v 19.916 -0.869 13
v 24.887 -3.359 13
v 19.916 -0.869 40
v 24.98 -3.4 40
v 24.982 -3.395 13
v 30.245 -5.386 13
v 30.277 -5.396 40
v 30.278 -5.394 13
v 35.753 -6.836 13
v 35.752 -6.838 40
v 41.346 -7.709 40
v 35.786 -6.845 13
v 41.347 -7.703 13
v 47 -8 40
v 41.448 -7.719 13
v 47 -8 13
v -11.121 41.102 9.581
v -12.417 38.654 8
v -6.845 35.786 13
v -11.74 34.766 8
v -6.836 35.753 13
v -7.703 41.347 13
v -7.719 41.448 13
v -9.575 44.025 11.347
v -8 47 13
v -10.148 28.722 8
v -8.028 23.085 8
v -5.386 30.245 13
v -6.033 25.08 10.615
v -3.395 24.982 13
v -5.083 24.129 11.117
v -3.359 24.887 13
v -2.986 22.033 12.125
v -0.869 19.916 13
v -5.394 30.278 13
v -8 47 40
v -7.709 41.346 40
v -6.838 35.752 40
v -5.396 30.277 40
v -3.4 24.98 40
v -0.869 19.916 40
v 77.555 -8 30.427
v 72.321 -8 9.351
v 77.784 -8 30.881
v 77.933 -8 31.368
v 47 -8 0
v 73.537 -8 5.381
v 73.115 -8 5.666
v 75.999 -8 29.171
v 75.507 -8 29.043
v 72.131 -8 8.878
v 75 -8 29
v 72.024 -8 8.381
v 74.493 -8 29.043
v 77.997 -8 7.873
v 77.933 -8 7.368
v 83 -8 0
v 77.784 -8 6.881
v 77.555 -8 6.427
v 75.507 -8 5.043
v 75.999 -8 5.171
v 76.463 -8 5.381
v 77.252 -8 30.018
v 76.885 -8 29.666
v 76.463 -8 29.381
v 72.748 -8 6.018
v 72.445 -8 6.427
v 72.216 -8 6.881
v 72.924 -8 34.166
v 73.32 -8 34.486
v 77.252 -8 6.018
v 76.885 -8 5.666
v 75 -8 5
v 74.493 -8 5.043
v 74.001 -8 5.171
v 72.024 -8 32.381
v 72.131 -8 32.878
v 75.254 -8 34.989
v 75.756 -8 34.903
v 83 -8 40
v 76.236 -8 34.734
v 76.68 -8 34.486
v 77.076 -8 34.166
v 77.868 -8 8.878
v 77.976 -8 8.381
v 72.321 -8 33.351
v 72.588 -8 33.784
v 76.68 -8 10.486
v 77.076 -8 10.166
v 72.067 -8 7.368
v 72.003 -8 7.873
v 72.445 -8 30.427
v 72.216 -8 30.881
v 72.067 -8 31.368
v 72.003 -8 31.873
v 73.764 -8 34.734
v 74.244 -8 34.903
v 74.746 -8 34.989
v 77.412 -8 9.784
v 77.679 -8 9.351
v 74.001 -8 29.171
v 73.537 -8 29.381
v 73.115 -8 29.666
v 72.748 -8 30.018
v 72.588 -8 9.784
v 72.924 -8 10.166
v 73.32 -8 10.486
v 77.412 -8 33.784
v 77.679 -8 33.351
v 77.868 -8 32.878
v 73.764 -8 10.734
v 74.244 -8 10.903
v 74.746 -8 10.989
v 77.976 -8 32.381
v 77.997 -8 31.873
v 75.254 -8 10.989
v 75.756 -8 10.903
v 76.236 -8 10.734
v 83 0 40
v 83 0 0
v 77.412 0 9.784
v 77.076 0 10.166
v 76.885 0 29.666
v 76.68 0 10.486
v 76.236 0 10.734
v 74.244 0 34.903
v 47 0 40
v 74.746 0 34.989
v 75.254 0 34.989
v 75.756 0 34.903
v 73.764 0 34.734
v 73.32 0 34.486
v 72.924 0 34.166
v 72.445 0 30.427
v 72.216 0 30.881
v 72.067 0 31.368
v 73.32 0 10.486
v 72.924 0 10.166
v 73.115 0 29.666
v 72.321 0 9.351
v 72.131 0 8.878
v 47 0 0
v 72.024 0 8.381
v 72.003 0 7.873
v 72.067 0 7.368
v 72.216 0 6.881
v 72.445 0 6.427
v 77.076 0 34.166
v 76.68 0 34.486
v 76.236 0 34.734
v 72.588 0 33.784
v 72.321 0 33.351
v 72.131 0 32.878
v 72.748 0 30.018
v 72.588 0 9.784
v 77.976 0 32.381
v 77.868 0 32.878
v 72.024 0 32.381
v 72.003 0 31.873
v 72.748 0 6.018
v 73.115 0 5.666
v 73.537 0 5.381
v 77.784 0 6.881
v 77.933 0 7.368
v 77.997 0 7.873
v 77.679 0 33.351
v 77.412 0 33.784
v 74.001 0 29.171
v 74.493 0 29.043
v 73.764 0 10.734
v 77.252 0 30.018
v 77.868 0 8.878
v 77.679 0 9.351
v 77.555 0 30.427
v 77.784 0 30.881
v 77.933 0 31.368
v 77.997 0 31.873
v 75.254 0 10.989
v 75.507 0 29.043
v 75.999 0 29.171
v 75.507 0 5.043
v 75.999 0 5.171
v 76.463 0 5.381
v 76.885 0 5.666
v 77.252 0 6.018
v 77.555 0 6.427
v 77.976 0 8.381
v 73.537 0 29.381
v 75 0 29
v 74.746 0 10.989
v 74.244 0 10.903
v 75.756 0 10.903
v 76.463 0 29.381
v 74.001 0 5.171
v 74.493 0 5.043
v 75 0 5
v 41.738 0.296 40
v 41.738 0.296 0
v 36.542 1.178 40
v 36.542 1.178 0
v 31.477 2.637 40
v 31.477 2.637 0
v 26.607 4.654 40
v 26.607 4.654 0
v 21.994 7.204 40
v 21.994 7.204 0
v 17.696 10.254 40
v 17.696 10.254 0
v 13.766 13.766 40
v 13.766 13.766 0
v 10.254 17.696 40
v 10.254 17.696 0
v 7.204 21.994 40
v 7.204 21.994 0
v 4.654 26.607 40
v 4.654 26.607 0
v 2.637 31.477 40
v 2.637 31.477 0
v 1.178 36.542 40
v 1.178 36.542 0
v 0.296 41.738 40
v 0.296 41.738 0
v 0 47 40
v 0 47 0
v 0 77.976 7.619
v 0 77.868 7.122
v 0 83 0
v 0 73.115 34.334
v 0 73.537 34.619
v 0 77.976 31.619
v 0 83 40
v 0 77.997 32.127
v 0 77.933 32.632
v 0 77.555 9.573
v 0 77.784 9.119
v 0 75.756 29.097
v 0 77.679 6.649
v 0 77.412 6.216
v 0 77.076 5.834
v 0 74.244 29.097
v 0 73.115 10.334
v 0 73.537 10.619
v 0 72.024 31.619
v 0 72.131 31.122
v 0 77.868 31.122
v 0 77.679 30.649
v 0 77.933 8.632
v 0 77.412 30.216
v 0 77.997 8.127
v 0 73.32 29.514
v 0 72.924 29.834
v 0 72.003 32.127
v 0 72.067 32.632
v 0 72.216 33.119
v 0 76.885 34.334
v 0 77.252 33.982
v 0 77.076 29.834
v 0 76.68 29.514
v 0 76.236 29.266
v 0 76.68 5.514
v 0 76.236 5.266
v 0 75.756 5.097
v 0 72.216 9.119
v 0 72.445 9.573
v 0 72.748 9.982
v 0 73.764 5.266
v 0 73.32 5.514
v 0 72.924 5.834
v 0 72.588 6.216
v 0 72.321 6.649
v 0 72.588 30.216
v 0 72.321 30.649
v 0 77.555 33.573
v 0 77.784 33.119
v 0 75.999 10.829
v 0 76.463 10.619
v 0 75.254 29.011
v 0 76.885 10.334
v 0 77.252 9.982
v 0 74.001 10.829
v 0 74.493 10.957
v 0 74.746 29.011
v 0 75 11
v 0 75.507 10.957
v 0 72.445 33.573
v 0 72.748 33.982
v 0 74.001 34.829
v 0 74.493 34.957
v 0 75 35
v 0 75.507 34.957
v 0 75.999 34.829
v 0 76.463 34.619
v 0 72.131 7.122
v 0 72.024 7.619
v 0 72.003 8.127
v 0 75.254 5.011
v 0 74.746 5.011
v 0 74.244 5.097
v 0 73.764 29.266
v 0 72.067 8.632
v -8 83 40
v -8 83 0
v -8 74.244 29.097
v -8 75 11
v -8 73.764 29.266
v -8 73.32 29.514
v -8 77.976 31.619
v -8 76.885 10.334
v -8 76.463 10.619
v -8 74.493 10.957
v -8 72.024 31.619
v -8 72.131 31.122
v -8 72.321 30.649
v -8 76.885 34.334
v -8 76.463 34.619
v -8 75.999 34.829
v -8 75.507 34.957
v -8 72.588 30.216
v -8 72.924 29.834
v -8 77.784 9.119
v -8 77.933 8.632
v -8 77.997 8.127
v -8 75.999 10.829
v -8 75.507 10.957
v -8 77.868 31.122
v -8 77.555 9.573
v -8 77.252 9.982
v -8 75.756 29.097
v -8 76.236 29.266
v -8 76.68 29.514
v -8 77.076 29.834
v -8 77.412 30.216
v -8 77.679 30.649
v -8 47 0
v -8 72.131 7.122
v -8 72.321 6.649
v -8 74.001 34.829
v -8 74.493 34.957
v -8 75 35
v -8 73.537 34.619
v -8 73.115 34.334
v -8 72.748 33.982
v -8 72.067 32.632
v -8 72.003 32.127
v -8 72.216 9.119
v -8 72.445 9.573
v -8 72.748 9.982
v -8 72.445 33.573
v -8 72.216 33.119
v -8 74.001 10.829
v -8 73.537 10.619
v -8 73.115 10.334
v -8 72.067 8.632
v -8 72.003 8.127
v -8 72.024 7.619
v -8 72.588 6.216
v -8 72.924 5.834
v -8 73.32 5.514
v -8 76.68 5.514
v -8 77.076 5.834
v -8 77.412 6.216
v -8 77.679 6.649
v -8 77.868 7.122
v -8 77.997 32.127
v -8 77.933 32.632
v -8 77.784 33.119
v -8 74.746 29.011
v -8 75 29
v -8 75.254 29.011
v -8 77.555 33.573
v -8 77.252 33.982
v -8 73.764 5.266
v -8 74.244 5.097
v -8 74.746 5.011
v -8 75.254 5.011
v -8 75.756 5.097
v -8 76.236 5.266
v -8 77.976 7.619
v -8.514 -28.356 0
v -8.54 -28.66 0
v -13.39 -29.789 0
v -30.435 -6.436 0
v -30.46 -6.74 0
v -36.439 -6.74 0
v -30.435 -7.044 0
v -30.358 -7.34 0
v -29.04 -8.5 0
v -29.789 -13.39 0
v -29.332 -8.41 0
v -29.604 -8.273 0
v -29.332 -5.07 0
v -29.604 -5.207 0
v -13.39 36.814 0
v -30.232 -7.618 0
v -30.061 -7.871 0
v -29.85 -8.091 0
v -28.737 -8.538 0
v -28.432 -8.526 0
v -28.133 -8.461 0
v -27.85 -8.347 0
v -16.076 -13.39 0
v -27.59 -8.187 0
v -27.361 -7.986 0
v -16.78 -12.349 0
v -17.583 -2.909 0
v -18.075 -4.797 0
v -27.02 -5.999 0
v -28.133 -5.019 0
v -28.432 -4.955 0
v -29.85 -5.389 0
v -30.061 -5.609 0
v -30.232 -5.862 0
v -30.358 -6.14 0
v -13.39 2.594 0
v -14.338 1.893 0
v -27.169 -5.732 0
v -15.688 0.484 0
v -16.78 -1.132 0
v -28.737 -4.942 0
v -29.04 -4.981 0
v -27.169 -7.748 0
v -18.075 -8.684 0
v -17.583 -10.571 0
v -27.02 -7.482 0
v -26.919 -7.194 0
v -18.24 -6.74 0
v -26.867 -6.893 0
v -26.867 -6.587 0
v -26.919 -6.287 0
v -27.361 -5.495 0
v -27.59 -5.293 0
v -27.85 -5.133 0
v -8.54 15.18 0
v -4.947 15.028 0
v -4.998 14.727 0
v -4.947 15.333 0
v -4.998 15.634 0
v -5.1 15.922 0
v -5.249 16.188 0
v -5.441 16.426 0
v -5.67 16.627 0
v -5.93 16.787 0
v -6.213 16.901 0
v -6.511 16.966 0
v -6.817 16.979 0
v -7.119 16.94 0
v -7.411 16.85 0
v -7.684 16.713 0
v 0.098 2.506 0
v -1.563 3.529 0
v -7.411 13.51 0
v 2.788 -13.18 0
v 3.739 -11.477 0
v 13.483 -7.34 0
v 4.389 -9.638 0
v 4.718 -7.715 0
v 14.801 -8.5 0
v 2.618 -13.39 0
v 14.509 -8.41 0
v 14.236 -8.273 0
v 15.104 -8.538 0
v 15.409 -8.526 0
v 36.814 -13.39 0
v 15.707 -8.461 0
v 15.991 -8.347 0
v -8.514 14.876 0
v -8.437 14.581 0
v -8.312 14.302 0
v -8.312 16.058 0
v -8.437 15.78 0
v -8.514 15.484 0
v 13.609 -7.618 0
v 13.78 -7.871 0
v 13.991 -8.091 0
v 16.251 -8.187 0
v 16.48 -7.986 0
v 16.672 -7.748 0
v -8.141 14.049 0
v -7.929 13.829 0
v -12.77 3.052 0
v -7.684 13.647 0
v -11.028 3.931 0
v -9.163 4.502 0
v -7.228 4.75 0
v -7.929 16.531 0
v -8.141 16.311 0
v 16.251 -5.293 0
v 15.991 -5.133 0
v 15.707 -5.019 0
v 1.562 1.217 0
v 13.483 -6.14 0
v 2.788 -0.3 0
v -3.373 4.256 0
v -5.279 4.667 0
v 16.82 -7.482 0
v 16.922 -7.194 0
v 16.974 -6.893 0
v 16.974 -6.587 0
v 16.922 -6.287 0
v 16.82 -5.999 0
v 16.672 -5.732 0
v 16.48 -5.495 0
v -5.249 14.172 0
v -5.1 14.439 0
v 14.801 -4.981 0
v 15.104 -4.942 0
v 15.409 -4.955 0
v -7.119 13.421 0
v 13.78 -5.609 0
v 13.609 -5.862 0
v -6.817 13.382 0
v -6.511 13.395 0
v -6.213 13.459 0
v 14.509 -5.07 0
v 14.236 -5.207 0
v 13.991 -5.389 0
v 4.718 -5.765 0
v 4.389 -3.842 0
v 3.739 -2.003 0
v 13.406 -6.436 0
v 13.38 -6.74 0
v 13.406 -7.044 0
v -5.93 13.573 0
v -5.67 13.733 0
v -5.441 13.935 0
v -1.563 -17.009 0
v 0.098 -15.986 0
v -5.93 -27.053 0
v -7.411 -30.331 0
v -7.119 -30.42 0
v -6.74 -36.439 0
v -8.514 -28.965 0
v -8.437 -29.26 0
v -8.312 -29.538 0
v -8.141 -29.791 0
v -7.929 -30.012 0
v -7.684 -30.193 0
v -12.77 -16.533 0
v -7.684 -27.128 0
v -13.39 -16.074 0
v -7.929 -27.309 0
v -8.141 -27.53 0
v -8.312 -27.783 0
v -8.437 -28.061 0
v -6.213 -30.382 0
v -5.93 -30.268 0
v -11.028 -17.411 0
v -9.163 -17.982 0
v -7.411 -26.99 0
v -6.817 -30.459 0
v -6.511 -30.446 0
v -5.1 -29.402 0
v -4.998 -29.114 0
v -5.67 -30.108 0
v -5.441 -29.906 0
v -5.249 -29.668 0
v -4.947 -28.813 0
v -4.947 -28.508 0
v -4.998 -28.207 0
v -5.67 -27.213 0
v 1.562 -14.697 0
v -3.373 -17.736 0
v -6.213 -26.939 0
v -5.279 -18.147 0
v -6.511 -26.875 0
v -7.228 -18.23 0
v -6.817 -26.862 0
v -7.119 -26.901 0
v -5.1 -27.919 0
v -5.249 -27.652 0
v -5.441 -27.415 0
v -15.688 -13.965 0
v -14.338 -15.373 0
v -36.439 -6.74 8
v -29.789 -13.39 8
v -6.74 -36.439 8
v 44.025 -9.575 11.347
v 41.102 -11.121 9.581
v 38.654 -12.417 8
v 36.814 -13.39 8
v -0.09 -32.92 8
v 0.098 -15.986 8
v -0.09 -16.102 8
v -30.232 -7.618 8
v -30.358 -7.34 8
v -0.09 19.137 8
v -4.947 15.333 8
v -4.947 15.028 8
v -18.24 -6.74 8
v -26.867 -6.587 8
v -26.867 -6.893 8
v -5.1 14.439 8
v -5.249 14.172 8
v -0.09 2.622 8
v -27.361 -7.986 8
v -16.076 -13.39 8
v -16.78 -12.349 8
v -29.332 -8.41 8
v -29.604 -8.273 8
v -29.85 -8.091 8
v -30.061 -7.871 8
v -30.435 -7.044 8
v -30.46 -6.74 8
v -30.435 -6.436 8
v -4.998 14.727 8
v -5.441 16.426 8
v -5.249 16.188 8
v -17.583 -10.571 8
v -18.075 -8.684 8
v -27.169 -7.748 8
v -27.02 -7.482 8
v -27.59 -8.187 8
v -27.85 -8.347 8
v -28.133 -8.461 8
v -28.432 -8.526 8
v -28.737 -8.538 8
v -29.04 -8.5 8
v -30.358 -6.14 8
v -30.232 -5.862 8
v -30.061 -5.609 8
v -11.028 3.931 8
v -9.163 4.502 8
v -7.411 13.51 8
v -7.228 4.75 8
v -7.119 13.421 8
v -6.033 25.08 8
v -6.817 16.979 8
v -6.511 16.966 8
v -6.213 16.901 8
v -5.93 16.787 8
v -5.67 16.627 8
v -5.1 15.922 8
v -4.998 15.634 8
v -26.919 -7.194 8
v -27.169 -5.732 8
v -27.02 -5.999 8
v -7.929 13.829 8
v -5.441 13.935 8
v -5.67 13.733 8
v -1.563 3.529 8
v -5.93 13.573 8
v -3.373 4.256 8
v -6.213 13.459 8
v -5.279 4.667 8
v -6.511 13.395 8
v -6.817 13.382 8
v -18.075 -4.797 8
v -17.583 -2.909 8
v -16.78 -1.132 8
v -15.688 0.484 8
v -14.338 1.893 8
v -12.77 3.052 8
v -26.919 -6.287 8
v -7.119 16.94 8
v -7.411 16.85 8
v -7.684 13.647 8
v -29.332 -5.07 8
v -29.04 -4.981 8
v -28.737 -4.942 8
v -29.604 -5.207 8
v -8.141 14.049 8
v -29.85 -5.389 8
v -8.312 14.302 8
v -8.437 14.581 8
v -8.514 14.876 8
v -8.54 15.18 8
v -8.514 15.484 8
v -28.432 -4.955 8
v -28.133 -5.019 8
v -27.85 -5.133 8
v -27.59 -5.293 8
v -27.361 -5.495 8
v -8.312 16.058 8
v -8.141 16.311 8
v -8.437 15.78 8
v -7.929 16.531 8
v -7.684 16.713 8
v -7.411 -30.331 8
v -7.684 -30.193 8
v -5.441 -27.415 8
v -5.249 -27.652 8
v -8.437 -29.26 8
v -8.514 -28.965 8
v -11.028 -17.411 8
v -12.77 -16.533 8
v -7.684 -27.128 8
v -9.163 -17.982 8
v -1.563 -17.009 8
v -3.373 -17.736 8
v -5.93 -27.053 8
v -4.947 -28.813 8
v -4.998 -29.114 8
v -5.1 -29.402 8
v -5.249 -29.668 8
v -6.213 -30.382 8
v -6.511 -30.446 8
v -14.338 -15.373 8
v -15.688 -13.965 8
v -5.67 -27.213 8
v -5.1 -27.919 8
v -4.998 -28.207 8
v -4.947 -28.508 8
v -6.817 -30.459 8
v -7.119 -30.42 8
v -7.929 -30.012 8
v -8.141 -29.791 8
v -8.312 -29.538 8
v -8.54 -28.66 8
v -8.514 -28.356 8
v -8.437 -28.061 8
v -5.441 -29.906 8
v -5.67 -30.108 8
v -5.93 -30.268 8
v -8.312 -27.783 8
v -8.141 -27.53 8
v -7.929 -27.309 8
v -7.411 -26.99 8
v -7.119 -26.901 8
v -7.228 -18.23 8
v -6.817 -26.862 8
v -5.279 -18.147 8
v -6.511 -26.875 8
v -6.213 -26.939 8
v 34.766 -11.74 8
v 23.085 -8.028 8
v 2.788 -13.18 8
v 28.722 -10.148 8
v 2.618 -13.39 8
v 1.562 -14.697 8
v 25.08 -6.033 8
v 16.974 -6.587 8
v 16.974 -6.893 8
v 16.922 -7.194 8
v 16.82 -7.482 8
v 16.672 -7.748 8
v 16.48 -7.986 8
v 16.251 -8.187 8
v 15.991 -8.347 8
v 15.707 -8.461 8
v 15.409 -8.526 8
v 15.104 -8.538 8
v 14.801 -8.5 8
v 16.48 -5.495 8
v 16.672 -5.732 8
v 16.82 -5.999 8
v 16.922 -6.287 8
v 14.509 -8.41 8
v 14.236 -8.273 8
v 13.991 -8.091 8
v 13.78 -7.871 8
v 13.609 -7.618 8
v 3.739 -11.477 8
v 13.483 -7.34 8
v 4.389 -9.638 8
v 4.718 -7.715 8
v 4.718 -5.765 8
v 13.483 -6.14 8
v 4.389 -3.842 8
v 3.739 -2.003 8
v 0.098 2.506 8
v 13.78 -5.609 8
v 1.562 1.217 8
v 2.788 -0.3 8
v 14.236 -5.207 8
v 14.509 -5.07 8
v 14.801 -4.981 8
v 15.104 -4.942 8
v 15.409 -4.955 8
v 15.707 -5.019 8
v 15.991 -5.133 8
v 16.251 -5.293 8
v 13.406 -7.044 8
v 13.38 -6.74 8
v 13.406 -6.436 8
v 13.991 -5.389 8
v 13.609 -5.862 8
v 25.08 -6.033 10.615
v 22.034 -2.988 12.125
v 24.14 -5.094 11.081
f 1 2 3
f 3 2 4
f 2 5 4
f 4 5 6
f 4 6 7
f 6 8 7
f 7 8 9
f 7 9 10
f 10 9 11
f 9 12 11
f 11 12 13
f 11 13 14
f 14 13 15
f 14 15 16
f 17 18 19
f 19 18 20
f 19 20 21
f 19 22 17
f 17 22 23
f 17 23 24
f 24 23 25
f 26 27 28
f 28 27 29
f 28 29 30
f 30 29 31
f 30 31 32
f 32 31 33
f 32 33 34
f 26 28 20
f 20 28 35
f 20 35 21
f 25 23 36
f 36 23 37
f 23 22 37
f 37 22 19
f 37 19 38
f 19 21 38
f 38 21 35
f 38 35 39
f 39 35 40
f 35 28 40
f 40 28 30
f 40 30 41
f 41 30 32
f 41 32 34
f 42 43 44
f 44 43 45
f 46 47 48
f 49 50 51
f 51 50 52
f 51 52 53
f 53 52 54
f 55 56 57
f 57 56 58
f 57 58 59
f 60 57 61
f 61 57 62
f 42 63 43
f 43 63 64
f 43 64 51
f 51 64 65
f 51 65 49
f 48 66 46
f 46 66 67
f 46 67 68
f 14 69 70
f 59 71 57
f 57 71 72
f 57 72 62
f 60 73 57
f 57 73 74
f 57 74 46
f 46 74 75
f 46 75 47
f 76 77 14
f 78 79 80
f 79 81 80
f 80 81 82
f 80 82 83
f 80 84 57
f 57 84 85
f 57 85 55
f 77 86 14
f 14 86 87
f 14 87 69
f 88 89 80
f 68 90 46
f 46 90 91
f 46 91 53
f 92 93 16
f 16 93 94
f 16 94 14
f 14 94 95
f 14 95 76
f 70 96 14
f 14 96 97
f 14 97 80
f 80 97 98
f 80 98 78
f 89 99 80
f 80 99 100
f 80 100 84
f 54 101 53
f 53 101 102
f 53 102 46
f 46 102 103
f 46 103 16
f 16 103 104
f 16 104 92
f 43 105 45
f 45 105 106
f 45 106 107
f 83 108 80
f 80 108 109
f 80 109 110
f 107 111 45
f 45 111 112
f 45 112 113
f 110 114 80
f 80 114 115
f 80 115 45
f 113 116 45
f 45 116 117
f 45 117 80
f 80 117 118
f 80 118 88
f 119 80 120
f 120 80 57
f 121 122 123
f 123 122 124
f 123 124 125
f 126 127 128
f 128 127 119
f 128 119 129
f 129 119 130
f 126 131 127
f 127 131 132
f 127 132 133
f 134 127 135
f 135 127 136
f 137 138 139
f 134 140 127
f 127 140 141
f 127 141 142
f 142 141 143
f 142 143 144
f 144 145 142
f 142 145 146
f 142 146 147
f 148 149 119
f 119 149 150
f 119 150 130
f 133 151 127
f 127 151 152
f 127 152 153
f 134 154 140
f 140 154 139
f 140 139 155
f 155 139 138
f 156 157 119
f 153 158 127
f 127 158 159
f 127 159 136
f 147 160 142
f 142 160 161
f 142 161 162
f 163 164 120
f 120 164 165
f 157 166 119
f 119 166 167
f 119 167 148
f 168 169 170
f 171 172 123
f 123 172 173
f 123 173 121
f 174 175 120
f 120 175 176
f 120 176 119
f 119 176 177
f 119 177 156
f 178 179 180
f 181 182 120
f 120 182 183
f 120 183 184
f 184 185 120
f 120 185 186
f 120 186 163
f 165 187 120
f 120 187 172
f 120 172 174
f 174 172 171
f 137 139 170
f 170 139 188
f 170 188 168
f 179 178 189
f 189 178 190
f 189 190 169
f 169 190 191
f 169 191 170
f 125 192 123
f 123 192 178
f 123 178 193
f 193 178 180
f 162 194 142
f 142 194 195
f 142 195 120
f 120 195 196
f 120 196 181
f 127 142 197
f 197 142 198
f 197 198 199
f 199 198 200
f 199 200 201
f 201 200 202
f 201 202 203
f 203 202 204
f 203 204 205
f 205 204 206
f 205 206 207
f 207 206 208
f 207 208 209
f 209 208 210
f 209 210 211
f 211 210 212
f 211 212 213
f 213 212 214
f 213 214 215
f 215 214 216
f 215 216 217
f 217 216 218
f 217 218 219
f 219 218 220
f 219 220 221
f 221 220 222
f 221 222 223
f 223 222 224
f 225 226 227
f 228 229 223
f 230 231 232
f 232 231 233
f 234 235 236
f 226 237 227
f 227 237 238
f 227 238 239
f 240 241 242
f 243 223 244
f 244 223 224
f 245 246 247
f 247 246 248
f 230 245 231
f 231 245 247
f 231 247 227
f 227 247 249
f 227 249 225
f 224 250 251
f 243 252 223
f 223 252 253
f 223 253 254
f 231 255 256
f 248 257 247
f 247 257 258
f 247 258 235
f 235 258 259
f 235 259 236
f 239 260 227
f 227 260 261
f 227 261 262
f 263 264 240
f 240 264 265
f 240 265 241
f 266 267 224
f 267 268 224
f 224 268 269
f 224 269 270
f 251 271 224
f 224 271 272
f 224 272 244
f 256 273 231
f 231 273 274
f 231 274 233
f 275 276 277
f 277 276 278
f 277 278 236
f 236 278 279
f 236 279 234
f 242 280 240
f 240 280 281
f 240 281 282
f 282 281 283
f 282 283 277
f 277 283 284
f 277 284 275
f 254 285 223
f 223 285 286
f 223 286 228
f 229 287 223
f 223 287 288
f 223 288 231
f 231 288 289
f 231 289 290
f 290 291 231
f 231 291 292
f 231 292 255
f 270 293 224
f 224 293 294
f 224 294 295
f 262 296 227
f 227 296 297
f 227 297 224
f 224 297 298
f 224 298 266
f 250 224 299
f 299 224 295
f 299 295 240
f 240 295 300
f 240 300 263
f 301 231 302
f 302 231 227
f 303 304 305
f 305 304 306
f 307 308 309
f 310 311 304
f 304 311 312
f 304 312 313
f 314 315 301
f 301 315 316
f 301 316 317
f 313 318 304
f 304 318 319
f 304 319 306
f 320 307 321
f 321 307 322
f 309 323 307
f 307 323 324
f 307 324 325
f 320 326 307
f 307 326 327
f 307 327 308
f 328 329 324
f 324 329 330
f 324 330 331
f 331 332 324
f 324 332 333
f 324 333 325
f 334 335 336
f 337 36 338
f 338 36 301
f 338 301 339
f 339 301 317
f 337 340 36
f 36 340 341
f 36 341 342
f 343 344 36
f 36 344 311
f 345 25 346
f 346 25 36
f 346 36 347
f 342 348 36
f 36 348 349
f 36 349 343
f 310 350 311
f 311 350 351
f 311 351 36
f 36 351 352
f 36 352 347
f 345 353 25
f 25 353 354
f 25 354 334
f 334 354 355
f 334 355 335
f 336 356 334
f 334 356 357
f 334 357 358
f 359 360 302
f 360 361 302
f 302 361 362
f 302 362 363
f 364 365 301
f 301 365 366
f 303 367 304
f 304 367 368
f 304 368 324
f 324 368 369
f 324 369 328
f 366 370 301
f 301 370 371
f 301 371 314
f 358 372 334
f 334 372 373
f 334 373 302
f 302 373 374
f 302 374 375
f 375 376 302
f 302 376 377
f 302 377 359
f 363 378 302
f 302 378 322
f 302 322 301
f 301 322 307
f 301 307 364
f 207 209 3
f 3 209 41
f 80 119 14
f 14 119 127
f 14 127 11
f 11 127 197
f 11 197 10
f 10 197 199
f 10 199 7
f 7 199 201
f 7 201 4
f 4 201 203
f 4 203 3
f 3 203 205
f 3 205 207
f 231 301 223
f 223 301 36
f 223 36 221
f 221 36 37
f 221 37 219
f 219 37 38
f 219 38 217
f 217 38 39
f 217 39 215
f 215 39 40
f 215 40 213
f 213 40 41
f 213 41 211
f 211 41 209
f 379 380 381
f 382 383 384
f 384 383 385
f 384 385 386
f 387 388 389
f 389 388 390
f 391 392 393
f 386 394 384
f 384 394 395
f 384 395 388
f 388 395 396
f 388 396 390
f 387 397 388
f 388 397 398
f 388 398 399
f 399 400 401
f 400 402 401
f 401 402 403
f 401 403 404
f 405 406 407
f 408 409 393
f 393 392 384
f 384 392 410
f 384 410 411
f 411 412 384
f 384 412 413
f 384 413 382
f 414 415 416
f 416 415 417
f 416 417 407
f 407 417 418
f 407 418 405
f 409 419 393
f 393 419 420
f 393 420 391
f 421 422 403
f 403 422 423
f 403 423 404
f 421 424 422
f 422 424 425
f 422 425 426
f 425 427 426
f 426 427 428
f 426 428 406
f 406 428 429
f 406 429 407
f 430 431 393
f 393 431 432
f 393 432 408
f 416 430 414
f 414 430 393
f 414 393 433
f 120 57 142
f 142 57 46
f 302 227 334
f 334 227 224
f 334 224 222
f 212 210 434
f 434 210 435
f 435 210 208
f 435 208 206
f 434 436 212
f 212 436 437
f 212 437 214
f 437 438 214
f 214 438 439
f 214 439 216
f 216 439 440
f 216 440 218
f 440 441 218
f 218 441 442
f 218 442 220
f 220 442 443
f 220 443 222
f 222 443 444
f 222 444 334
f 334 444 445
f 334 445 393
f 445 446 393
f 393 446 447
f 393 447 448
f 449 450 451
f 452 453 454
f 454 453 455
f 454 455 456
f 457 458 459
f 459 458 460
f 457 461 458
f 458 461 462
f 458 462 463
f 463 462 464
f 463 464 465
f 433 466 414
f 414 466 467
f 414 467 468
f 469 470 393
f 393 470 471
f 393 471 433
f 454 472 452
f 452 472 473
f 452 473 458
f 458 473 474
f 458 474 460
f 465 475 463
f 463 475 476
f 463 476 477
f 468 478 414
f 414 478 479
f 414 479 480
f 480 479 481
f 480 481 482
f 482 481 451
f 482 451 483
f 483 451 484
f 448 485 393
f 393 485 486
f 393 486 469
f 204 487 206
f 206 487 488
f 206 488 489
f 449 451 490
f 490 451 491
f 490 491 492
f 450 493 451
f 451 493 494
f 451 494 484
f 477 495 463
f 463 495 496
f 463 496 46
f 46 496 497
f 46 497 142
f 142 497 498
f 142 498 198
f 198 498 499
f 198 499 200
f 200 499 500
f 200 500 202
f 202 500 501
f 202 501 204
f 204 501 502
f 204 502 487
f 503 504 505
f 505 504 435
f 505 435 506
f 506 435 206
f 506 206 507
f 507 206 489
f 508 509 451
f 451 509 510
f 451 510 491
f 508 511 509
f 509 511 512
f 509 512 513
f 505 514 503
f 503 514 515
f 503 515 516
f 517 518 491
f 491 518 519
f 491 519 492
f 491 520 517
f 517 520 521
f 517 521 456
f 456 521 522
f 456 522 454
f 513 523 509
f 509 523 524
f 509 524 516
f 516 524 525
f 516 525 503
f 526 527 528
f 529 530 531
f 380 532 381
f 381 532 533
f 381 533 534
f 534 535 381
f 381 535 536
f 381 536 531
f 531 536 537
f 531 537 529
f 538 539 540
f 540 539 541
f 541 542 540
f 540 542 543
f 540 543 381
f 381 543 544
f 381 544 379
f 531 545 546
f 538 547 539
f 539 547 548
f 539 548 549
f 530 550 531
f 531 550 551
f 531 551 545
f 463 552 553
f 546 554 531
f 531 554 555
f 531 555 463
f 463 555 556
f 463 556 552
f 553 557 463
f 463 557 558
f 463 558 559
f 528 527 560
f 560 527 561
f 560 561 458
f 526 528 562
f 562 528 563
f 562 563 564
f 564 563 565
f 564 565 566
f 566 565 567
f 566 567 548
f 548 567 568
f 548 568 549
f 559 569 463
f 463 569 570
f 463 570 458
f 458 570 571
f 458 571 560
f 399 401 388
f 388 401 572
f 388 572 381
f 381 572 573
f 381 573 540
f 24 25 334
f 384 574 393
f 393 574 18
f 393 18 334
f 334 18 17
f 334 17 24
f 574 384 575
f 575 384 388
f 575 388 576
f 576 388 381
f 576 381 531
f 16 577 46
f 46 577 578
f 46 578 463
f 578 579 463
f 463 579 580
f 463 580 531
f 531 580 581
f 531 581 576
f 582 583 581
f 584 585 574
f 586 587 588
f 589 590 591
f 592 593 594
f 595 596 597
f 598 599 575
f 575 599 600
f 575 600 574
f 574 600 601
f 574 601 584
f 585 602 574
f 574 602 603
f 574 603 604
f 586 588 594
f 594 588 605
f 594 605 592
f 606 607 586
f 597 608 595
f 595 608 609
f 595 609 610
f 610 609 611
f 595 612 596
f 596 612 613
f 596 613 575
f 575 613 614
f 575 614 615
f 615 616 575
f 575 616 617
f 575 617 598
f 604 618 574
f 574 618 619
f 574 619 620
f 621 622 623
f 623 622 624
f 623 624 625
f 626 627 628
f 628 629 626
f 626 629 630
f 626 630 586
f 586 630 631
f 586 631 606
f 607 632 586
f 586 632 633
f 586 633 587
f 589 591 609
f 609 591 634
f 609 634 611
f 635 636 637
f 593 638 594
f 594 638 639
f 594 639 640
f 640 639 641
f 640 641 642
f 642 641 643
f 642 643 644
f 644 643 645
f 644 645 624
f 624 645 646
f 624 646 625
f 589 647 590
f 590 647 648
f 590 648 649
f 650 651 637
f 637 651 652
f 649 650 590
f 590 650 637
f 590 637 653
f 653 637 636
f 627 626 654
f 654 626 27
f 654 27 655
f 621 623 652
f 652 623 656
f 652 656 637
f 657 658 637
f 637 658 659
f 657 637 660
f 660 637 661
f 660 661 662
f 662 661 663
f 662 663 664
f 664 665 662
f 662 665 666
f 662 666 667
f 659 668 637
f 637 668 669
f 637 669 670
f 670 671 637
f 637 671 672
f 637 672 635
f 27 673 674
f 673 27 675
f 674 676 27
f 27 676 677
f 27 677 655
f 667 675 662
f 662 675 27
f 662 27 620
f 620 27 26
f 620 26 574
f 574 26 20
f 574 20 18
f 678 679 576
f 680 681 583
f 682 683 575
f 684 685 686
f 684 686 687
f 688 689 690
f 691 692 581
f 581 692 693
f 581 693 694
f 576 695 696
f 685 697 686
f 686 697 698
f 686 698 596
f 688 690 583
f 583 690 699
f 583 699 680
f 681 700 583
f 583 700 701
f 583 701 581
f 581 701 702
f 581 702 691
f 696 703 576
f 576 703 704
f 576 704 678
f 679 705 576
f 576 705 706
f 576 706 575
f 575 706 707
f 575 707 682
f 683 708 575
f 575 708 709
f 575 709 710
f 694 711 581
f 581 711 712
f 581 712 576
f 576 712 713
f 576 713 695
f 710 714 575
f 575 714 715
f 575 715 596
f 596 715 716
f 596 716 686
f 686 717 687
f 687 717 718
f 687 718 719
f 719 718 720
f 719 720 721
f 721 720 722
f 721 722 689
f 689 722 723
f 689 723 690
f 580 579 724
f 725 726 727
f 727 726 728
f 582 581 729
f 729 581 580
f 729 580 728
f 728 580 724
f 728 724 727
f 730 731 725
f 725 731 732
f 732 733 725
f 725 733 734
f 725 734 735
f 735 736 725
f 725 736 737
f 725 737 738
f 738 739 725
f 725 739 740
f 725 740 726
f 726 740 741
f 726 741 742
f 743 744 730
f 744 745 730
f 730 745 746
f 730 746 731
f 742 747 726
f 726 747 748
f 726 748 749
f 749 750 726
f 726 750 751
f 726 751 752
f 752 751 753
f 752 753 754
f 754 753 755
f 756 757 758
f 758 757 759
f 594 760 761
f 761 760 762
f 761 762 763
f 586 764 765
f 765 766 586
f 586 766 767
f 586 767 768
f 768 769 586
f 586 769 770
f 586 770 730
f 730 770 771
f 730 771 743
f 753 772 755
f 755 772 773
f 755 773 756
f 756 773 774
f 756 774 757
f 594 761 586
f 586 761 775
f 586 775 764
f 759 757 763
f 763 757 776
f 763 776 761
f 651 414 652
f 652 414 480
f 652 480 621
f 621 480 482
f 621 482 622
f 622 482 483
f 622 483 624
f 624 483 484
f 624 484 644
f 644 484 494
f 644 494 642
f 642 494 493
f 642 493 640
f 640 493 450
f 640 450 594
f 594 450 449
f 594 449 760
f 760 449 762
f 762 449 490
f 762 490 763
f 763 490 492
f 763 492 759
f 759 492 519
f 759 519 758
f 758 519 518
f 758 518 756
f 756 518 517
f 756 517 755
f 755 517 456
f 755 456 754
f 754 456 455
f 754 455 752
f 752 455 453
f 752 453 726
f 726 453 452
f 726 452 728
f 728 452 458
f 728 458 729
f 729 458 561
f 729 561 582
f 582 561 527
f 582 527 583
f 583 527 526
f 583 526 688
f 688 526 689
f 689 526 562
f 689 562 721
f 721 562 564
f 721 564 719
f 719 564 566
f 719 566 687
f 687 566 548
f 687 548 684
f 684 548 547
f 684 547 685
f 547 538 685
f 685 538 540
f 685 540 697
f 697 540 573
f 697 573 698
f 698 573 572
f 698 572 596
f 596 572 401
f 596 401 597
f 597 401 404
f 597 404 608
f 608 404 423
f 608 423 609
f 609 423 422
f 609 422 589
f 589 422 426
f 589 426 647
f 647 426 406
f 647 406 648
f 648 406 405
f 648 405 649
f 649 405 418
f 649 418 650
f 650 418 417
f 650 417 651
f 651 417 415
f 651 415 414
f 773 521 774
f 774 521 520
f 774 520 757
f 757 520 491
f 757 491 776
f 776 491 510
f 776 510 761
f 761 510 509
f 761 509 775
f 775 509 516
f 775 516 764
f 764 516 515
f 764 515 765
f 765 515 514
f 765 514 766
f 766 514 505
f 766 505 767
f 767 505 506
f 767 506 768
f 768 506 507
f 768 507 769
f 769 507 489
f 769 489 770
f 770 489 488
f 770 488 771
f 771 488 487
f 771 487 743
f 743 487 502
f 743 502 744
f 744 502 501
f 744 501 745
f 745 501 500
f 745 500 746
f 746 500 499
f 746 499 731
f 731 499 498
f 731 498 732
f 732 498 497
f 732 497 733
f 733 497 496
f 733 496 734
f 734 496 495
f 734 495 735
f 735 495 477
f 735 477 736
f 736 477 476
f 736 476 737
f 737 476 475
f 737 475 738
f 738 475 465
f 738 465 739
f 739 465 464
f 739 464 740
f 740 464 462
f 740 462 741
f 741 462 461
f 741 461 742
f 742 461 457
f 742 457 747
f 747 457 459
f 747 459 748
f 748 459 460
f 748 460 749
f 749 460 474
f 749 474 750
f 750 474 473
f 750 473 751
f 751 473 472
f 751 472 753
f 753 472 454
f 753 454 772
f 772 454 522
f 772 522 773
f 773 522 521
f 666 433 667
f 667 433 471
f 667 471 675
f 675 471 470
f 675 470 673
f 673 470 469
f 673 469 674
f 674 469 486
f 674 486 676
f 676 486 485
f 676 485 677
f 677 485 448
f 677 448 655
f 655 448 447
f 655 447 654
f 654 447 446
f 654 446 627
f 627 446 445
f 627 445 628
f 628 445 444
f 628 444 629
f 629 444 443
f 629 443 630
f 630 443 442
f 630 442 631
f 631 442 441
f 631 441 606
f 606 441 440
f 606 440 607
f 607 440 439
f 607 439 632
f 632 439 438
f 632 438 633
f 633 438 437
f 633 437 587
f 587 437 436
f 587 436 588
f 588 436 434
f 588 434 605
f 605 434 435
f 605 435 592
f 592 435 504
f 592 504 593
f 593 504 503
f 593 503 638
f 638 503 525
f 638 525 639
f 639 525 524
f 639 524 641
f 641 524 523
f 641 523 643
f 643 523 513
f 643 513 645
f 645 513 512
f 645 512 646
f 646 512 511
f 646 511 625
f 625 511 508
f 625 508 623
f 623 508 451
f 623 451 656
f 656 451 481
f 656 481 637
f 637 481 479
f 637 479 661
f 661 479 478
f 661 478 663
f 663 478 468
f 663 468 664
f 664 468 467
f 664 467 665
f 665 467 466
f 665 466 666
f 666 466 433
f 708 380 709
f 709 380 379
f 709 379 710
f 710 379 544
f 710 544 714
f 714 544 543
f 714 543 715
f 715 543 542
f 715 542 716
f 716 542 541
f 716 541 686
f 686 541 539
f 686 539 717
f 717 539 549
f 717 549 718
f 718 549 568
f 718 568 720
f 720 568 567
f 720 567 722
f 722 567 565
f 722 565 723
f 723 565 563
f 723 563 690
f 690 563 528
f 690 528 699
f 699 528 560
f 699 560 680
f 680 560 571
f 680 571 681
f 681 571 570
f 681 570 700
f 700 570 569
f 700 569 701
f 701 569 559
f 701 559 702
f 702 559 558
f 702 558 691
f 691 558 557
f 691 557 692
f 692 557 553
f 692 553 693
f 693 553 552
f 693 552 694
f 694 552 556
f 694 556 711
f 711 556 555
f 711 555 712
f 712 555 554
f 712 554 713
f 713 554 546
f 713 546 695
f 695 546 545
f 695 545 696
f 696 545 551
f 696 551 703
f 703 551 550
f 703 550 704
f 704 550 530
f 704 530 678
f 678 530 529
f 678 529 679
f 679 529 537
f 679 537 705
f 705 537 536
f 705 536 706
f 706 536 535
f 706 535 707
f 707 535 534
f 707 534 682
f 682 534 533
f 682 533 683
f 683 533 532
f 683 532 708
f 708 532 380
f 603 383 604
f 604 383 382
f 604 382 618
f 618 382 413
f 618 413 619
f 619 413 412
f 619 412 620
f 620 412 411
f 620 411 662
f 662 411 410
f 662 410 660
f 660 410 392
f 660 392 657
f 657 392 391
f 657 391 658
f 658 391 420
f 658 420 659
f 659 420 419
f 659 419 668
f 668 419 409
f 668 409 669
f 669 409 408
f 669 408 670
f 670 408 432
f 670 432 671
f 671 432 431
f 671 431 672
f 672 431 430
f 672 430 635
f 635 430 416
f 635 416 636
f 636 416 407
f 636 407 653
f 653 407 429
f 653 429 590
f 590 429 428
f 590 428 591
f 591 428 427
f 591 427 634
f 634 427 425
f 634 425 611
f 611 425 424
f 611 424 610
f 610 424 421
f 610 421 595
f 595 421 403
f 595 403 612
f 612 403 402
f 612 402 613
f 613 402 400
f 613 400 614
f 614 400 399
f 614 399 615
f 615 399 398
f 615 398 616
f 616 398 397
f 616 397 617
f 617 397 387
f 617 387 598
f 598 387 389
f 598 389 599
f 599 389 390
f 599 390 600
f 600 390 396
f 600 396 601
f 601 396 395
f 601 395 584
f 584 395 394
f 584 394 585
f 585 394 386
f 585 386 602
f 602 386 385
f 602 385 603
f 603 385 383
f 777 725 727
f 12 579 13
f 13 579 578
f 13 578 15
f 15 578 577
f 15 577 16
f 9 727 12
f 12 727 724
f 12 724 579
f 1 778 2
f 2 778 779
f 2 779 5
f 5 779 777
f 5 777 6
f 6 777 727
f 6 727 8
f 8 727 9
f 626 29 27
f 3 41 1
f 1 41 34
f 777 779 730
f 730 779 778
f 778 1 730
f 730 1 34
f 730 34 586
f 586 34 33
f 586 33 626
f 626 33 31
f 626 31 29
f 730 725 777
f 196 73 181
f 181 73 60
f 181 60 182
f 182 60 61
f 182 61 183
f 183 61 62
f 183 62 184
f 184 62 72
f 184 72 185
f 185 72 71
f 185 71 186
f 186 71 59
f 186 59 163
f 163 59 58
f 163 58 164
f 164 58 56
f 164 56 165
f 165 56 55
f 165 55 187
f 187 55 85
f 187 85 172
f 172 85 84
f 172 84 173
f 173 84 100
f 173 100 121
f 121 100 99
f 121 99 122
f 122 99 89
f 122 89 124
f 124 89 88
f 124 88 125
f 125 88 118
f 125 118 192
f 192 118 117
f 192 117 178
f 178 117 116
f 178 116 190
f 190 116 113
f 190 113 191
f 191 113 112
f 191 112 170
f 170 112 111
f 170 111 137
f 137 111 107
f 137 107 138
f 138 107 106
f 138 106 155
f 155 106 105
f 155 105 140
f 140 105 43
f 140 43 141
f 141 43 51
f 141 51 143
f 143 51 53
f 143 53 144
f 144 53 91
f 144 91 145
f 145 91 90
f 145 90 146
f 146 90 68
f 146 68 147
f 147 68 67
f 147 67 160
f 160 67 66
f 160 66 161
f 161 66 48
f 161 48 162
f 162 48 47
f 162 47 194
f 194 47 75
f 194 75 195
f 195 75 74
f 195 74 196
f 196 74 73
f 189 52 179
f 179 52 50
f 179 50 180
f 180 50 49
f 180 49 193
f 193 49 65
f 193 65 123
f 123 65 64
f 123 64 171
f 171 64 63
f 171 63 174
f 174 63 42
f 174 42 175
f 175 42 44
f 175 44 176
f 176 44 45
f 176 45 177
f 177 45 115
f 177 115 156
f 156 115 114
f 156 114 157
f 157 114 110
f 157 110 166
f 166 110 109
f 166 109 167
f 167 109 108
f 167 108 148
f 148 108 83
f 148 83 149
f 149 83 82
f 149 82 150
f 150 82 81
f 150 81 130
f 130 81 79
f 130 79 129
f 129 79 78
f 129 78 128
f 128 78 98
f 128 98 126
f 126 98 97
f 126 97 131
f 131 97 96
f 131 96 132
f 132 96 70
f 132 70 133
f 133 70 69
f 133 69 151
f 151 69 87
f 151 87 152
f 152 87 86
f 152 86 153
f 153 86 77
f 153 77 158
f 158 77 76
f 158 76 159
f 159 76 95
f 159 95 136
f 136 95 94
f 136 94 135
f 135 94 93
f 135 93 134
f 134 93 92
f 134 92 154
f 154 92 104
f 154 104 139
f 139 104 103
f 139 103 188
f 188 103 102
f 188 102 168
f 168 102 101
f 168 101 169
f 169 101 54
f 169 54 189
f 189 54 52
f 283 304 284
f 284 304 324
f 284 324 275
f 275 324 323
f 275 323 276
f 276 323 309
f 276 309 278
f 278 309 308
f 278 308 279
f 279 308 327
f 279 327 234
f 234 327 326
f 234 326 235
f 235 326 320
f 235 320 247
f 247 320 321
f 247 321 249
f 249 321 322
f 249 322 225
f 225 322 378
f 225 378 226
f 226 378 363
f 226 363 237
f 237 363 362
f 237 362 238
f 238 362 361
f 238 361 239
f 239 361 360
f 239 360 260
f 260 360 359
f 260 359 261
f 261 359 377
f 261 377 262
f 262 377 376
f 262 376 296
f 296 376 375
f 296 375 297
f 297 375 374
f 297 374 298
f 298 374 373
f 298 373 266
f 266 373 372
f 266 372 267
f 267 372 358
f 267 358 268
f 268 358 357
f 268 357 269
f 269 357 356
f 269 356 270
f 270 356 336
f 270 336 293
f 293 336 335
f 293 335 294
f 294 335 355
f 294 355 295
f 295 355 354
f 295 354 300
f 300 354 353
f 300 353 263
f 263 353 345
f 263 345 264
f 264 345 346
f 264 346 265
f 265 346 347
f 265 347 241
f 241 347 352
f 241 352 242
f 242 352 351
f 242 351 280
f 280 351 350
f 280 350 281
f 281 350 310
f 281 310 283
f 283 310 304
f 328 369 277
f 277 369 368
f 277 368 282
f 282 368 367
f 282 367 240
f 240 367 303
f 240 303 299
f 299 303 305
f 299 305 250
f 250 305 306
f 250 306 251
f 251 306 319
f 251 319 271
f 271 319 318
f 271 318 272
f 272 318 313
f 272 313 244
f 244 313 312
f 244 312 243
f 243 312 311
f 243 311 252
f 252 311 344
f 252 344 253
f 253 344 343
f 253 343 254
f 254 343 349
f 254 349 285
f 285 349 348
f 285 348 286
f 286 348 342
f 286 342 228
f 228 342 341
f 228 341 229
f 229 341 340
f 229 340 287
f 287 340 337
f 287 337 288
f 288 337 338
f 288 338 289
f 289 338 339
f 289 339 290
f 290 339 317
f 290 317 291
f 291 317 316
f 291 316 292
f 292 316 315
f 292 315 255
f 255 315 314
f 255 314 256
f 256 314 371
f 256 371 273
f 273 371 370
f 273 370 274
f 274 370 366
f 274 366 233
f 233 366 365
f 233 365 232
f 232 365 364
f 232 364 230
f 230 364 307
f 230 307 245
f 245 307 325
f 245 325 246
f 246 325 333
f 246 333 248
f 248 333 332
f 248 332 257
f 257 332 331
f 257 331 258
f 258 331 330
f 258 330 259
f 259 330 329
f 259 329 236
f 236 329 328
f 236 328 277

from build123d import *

# Parameters (mm, degrees)
EXTRUDE_1_DEPTH     = 40
SKETCH_4_R          = 11.5
SKETCH_4_R_2        = 1.8
EXTRUDE_3_DEPTH     = 8
CHAMFER_1_SIZE      = 5
CUT_EXTRUDE_4_DEPTH = 32
SKETCH_6_R          = 3
CUT_EXTRUDE_5_DEPTH = 32
SKETCH_7_R          = 3
CUT_EXTRUDE_6_DEPTH = 32


with BuildPart() as part:
    # 草图1 → 凸台-拉伸1 (new body)
    with BuildSketch(Plane.XY):
        with BuildLine():
            Line((0, 47), (0, 83))
            Line((0, 83), (-8, 83))
            Line((-8, 83), (-8, 47))
            ThreePointArc((-8, 47), (8.109127035, 8.109127035), (47, -8))
            Line((47, -8), (83, -8))
            Line((83, -8), (83, 0))
            Line((83, 0), (47, 0))
            ThreePointArc((47, 0), (13.765981284, 13.765981284), (0, 47))
        make_face()
    extrude(amount=EXTRUDE_1_DEPTH)

    # 草图4 → 凸台-拉伸3 (add)
    with BuildSketch(Plane(origin=(0, 0, 0), x_dir=(-1, 0, 0), z_dir=(0, 0, -1))):
        with BuildLine():
            Line((6.74011537, -36.43860018), (36.43860018, -6.74011537))
            Line((36.43860018, -6.74011537), (8, 47))
            ThreePointArc((8, 47), (-8.109127035, 8.109127035), (-47, -8))
            Line((-47, -8), (6.74011537, -36.43860018))
        make_face()
        with Locations((6.74011537, -6.74011537)):
            Circle(SKETCH_4_R, mode=Mode.SUBTRACT)
        with Locations((-15.180194847, -6.74011537)):
            Circle(SKETCH_4_R_2, mode=Mode.SUBTRACT)
        with Locations((6.74011537, 15.180194847)):
            Circle(SKETCH_4_R_2, mode=Mode.SUBTRACT)
        with Locations((6.74011537, -28.660425587)):
            Circle(SKETCH_4_R_2, mode=Mode.SUBTRACT)
        with Locations((28.660425587, -6.74011537)):
            Circle(SKETCH_4_R_2, mode=Mode.SUBTRACT)
    extrude(amount=-EXTRUDE_3_DEPTH)

    # 倒角1
    # the kernel refuses this chamfer: 5 mm, written as the material it adds along each edge
    with BuildSketch(Plane(origin=(47, 47, 8), x_dir=(-0.9727737558517583, 0.23175681203810172, 0), z_dir=(0.23175681203810172, 0.9727737558517583, 0))) as chamfer_1_piece_1_section:
        Polygon((55, CHAMFER_1_SIZE), (55 + CHAMFER_1_SIZE, 0), (55, 0), align=None)
    chamfer_1_piece_1 = revolve(axis=Axis((47, 47, 8), (0, 0, 1)), revolution_arc=116.801049414, mode=Mode.PRIVATE)
    chamfer_1_piece_1 = split(chamfer_1_piece_1, bisect_by=Plane(origin=(21.227823302, -21.638315136, 10.426045108), z_dir=(-0.46773292368325514, 0.8838698502057383, 0)), keep=Keep.TOP, mode=Mode.PRIVATE)
    chamfer_1_piece_1 = split(chamfer_1_piece_1, bisect_by=Plane(origin=(-21.638315136, 21.227823302, 10.426045108), z_dir=(0.8838698502057382, -0.46773292368325536, 0)), keep=Keep.TOP, mode=Mode.PRIVATE)
    add(chamfer_1_piece_1)

    # 草图5 → 切除-拉伸4 (cut)
    with BuildSketch(Plane.XY.offset(40)):
        Polygon((-7.447222151, 23.665476221), (-6.033008589, 25.079689783), (25.079689783, -6.033008589), (23.665476221, -7.447222151), (19.271084521, -11.841613851), (-11.841613851, 19.271084521), align=None)
    extrude(amount=-CUT_EXTRUDE_4_DEPTH, mode=Mode.SUBTRACT)

    # 草图6 → 切除-拉伸5 (cut)
    with BuildSketch(Plane.XZ.offset(8)):
        with Locations(Location((75, 8, 0), (0, 0, 270))):
            Circle(SKETCH_6_R)
        with Locations(Location((75, 32, 0), (0, 0, 270))):
            Circle(SKETCH_6_R)
    extrude(amount=-CUT_EXTRUDE_5_DEPTH, mode=Mode.SUBTRACT)

    # 草图7 → 切除-拉伸6 (cut)
    with BuildSketch(Plane.ZY.offset(8)):
        with Locations((8, 75)):
            Circle(SKETCH_7_R)
        with Locations((32, 75)):
            Circle(SKETCH_7_R)
    extrude(amount=-CUT_EXTRUDE_6_DEPTH, mode=Mode.SUBTRACT)


solid = part.part
